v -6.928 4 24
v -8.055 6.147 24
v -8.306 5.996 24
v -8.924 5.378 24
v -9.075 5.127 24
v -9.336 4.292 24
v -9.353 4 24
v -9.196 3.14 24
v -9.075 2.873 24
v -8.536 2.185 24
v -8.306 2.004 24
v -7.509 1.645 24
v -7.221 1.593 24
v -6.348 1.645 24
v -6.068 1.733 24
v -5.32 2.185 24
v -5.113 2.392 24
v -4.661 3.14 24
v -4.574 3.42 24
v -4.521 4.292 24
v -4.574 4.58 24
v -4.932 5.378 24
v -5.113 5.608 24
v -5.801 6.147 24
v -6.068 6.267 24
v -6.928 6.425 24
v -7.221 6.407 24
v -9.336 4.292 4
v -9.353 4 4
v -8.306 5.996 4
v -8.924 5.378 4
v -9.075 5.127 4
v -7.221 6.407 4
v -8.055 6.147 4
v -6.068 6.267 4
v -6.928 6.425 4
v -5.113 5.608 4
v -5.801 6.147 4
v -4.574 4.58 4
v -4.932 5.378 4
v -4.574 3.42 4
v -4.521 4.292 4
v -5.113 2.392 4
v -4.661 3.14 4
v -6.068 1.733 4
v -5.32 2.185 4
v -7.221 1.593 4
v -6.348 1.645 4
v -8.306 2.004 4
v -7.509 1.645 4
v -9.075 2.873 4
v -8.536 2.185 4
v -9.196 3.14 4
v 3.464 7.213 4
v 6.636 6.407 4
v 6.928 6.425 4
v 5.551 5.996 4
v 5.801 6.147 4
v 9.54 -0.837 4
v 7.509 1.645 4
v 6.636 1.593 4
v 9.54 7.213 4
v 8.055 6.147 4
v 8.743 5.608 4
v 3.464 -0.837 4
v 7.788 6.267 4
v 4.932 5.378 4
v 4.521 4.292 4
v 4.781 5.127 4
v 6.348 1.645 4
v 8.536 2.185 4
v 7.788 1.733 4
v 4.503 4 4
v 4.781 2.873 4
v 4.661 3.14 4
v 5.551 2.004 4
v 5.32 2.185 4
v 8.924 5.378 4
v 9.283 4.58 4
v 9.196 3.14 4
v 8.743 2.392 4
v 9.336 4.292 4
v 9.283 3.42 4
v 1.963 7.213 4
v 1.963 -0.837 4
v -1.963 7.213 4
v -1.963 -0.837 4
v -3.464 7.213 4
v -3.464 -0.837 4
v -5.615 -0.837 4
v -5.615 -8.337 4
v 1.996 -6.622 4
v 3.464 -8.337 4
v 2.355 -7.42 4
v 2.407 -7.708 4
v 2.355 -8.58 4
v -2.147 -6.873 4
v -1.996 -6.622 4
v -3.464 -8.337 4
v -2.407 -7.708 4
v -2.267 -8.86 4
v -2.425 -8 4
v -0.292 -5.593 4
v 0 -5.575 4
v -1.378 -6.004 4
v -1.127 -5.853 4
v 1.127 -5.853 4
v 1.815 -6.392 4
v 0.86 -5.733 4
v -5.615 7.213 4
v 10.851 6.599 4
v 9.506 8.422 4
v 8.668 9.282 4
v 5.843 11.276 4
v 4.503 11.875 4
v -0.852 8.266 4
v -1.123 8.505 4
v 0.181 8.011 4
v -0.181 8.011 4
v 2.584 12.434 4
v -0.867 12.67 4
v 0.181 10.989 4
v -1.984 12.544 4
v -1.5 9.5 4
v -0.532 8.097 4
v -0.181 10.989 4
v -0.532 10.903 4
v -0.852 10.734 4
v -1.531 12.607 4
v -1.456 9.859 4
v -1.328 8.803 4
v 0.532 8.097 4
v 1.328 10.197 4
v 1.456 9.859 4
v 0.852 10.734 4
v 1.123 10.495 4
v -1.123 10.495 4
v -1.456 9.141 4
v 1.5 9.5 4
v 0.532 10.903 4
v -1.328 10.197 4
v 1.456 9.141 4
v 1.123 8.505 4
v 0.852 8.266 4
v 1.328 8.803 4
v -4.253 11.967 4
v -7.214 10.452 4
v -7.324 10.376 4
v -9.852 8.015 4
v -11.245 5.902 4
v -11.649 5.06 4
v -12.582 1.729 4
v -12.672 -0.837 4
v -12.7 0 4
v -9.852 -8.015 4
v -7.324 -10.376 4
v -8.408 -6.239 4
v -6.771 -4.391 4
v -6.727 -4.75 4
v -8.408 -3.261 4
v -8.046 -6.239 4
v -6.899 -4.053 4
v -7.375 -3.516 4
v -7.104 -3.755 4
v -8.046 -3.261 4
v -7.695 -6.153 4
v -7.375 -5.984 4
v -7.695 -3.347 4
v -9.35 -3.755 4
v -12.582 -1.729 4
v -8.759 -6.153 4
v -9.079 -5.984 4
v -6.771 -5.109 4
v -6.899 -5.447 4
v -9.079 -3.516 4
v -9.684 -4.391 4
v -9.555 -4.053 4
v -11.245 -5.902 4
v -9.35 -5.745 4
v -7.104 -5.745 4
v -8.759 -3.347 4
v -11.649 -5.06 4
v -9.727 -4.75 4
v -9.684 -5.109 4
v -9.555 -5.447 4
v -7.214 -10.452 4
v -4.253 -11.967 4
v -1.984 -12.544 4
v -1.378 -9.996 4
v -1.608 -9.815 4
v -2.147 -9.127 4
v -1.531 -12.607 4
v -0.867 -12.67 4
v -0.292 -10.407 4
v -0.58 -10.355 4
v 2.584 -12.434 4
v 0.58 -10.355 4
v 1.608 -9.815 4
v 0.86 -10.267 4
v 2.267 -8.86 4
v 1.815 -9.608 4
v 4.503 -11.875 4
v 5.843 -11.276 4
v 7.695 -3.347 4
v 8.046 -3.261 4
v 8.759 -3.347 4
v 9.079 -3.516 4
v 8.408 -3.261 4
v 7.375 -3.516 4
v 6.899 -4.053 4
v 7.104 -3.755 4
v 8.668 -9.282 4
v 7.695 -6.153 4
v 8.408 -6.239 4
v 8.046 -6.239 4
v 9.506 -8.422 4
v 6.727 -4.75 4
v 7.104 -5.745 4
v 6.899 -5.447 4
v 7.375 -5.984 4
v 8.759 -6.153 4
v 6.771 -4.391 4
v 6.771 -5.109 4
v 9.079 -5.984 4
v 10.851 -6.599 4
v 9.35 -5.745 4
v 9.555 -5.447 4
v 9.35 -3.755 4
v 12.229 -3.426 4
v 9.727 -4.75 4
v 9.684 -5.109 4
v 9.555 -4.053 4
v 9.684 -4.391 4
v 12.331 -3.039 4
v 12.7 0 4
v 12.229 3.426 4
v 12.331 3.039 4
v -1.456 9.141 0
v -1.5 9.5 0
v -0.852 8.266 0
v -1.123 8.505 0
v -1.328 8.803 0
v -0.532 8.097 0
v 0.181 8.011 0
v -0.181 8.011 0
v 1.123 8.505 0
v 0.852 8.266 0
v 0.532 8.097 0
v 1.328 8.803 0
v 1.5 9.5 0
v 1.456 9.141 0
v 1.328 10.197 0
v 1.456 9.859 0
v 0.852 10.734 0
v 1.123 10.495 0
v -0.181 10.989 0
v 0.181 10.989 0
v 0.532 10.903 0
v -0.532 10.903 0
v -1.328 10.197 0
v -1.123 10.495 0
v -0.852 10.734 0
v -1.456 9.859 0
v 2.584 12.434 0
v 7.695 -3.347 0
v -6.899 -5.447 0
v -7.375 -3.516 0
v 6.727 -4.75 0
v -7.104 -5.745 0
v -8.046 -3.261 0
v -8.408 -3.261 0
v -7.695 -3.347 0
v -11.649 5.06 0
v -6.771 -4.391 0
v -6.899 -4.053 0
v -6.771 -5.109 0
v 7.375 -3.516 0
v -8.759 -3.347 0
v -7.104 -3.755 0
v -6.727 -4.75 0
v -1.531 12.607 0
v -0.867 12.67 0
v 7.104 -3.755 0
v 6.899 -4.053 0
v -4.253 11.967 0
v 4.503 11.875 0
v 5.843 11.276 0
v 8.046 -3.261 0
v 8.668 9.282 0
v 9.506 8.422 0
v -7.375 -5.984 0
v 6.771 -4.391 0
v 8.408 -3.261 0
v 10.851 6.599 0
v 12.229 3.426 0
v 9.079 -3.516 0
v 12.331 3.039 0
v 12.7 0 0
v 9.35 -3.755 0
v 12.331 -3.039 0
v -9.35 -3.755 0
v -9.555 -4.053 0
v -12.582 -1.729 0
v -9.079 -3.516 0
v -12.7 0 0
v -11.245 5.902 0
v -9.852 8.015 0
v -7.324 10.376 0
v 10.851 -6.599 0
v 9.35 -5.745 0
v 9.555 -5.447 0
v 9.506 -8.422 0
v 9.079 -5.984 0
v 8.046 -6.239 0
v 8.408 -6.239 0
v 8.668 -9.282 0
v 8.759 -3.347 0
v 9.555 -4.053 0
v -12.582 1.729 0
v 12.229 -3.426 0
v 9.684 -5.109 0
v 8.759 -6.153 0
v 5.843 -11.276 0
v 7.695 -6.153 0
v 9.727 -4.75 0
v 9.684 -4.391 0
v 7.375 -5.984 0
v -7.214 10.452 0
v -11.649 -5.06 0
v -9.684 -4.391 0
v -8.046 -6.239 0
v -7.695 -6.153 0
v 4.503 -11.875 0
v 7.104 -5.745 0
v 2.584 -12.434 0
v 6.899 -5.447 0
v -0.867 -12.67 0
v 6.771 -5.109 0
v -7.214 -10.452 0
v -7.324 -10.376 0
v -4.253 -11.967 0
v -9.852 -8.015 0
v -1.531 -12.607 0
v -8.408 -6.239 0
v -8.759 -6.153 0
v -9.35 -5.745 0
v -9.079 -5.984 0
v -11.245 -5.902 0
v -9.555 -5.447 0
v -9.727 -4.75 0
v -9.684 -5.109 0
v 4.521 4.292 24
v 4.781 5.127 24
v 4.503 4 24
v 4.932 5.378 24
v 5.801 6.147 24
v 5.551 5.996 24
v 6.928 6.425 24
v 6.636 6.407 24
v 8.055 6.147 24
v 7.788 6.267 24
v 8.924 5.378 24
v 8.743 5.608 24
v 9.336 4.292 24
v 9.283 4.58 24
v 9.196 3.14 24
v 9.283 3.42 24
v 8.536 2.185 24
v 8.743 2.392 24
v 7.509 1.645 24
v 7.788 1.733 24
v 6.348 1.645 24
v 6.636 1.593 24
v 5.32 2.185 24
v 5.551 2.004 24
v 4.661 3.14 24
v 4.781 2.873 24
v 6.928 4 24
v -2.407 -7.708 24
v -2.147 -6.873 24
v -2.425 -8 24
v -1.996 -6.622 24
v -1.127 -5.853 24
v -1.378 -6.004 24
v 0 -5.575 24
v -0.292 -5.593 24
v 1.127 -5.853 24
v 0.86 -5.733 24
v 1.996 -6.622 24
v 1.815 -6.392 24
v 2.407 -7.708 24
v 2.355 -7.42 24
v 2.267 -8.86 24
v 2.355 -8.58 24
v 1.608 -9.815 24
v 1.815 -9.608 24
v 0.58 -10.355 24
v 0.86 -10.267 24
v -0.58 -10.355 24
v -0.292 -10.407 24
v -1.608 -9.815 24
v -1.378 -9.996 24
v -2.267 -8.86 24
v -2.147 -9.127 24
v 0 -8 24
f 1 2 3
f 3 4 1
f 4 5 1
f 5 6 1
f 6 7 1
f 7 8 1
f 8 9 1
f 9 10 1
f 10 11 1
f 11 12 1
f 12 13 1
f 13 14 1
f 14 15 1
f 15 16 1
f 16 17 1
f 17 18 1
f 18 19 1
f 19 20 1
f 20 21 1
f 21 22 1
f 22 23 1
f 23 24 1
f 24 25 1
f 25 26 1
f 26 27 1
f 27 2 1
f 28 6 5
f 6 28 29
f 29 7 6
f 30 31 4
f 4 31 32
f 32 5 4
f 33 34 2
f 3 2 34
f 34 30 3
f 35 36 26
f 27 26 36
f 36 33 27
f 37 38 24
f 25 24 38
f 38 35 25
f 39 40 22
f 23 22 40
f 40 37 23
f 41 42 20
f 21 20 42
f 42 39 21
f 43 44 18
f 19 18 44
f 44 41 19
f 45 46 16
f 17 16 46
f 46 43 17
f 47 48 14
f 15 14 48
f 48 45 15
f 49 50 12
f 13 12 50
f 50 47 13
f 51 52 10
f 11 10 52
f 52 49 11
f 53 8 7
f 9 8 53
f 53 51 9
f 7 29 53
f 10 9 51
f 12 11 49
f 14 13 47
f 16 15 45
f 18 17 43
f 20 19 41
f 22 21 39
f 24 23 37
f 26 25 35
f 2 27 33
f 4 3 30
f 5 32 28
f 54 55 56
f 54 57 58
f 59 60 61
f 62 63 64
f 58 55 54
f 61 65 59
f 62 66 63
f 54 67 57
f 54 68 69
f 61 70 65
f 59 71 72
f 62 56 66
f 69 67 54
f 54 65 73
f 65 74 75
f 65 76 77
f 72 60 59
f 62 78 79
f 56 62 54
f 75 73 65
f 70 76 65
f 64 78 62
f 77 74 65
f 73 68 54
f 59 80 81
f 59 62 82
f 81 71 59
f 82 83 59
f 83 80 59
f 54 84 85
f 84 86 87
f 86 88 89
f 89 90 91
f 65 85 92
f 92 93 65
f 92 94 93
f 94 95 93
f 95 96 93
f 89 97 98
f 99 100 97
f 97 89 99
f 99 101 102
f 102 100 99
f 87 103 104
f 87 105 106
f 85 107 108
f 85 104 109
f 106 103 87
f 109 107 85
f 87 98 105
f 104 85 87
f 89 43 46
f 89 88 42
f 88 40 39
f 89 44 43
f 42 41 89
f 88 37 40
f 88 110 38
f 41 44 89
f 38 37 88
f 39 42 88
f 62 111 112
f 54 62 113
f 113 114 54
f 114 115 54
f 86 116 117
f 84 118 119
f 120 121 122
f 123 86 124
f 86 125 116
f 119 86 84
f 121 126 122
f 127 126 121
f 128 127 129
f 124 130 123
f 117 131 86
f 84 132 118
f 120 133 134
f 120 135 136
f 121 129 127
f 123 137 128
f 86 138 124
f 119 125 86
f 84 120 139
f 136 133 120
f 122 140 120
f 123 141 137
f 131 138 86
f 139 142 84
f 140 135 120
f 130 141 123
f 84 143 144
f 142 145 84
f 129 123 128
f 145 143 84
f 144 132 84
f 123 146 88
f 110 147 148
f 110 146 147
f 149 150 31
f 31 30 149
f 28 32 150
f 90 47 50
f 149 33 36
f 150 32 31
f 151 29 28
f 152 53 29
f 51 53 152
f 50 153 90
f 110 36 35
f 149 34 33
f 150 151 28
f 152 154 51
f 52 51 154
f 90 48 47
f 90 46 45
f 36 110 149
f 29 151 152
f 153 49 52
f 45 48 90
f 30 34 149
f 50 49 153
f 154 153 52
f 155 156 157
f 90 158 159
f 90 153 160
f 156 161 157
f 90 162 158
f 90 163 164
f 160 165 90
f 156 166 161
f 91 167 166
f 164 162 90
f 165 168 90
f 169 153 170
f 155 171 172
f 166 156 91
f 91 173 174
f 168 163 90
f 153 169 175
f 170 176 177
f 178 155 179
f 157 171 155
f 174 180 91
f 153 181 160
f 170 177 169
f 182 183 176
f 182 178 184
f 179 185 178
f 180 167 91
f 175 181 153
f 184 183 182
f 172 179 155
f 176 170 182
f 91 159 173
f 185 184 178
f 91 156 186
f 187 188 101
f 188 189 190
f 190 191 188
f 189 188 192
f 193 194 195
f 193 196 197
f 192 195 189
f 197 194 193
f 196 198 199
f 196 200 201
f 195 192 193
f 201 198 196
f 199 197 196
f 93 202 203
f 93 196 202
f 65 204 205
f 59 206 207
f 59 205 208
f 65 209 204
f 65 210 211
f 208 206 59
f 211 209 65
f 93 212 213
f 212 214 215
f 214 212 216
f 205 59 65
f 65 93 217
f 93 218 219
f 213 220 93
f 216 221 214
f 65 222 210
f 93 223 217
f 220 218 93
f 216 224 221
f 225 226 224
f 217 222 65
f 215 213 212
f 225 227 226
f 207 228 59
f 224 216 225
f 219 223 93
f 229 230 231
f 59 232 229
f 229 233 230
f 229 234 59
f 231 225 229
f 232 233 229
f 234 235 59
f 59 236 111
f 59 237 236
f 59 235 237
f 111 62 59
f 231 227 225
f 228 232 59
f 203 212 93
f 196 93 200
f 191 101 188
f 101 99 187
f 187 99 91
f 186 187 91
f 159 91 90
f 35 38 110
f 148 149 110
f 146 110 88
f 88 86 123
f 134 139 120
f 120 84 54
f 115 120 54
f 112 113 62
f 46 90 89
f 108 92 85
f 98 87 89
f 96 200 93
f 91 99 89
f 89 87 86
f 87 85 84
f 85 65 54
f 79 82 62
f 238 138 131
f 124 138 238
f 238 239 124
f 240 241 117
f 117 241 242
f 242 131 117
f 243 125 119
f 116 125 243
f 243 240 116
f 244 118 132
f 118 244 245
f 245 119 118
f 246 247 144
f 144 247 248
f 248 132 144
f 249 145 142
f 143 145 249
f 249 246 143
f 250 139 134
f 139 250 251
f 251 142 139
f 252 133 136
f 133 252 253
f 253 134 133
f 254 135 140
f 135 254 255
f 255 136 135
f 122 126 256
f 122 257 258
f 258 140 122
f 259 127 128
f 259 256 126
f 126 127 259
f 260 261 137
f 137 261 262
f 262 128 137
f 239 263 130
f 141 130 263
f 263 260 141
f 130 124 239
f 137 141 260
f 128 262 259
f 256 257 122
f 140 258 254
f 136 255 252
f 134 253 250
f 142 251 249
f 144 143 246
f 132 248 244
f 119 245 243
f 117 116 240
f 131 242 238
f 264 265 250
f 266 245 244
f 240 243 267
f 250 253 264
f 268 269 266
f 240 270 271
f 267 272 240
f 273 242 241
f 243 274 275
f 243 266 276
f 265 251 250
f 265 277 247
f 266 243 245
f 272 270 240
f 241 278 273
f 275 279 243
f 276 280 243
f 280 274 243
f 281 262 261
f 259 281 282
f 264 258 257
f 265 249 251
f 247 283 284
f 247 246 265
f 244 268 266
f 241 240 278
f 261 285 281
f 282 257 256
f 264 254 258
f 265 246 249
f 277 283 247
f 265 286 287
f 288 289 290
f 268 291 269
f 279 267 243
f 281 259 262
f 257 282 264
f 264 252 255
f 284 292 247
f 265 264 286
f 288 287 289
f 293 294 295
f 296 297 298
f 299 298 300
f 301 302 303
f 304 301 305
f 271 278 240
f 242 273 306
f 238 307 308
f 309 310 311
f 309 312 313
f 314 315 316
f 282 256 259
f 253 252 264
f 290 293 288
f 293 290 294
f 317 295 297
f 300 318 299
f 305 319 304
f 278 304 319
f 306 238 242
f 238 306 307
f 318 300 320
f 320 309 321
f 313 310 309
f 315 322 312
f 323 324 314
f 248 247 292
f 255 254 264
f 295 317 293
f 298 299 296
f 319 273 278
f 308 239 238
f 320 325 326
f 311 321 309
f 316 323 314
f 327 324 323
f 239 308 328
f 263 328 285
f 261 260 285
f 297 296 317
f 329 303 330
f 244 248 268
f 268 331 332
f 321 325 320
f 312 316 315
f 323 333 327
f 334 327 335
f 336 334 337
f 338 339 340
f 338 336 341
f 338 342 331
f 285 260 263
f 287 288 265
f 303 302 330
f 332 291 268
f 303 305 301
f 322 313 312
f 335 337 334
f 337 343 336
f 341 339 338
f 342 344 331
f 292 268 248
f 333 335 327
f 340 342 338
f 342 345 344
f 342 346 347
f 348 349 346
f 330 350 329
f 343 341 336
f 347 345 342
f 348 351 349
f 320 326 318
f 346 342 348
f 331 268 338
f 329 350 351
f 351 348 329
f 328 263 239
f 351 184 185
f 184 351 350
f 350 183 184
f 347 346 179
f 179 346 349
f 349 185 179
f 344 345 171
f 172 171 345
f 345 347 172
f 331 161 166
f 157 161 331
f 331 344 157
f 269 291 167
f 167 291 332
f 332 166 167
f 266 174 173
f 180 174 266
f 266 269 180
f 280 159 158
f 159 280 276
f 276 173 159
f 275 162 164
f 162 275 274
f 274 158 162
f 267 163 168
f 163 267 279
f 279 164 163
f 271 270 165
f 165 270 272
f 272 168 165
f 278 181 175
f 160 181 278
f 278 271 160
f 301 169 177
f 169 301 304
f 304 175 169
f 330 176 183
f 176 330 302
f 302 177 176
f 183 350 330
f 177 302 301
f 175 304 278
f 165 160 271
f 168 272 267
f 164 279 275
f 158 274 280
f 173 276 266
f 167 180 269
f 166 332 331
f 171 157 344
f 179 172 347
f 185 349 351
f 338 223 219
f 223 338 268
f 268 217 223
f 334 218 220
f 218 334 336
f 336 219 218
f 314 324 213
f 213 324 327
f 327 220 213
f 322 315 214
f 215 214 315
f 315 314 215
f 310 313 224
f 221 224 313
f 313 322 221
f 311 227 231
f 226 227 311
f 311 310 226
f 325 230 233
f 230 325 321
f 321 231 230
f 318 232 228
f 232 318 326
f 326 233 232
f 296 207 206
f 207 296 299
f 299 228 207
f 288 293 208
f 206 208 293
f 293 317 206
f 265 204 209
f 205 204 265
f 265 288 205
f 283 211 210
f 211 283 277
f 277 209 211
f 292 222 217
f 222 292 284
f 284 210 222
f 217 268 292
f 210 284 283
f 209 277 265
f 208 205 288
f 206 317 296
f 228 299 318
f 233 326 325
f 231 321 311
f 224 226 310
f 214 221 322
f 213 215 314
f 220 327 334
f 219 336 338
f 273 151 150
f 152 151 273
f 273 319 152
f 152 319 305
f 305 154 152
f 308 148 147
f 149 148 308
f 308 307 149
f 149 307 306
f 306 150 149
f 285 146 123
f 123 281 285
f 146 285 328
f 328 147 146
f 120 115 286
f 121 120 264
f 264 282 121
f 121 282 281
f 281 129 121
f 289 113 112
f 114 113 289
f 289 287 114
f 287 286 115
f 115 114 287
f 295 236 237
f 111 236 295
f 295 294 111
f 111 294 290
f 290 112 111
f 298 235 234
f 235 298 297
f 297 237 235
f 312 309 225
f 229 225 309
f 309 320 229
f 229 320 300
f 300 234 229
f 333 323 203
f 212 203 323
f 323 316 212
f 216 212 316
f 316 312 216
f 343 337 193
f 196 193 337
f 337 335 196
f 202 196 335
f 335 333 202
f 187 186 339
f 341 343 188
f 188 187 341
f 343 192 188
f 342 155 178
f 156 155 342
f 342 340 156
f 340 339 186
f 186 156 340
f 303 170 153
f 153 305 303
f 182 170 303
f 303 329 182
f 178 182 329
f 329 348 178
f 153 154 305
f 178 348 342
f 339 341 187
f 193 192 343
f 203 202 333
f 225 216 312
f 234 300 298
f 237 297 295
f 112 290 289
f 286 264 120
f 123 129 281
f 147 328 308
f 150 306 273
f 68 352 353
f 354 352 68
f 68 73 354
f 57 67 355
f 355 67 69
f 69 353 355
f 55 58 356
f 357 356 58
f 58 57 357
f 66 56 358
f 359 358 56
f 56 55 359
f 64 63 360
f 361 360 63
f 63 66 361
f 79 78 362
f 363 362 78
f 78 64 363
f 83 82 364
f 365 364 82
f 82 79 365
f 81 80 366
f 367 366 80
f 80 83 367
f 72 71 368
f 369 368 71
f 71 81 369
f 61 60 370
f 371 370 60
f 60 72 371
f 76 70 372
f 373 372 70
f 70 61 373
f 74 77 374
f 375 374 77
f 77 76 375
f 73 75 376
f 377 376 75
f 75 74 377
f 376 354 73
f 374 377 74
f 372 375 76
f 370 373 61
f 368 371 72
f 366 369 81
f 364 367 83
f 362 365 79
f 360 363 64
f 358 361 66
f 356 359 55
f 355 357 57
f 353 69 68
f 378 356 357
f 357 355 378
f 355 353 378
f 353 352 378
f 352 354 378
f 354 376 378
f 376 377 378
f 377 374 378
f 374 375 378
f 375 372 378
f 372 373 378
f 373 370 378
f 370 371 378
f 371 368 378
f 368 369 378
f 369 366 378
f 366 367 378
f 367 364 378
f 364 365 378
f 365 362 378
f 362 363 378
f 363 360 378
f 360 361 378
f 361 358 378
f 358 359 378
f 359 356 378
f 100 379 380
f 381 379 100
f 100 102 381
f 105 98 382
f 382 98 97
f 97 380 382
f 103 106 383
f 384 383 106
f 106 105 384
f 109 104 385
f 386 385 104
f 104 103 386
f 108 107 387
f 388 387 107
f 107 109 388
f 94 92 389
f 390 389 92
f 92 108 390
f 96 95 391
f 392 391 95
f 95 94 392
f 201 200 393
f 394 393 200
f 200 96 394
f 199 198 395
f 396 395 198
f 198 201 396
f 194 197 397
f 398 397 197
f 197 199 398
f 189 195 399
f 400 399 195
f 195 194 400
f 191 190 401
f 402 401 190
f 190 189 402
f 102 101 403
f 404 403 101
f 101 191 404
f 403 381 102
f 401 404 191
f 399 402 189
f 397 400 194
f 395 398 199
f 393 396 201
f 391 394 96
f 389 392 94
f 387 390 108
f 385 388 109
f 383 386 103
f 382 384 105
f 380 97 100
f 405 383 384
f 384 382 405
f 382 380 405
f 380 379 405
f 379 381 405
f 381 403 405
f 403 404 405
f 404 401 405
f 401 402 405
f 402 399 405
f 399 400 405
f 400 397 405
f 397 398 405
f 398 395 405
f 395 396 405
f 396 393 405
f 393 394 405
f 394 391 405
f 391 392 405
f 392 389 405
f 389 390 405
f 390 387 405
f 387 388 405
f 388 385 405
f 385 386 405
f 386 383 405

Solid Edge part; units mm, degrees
sketch "Sketch1" plane through (0, 0, 0) normal (0, 0, 1) x (1, 0, 0)
  circle A0 centre (0, 0) radius 12.7
  circle A1 centre (0, 9.5) radius 1.5
  circle A2 centre (-8.2272, -4.75) radius 1.5
  circle A3 centre (8.2272, -4.75) radius 1.5
extrude "Protrusion1" add sketch "Sketch1" along normal blind 4
sketch "Sketch2" plane through (0, 0, 4) normal (0, 0, 1) x (0, 1, 0)
  circle A0 centre (4, 6.9282) radius 2.425
  circle A1 centre (4, -6.9282) radius 2.425
  circle A2 centre (-8, 0) radius 2.425
extrude "ExtrudedProtrusion_3" add sketch "Sketch2" along normal blind 20
